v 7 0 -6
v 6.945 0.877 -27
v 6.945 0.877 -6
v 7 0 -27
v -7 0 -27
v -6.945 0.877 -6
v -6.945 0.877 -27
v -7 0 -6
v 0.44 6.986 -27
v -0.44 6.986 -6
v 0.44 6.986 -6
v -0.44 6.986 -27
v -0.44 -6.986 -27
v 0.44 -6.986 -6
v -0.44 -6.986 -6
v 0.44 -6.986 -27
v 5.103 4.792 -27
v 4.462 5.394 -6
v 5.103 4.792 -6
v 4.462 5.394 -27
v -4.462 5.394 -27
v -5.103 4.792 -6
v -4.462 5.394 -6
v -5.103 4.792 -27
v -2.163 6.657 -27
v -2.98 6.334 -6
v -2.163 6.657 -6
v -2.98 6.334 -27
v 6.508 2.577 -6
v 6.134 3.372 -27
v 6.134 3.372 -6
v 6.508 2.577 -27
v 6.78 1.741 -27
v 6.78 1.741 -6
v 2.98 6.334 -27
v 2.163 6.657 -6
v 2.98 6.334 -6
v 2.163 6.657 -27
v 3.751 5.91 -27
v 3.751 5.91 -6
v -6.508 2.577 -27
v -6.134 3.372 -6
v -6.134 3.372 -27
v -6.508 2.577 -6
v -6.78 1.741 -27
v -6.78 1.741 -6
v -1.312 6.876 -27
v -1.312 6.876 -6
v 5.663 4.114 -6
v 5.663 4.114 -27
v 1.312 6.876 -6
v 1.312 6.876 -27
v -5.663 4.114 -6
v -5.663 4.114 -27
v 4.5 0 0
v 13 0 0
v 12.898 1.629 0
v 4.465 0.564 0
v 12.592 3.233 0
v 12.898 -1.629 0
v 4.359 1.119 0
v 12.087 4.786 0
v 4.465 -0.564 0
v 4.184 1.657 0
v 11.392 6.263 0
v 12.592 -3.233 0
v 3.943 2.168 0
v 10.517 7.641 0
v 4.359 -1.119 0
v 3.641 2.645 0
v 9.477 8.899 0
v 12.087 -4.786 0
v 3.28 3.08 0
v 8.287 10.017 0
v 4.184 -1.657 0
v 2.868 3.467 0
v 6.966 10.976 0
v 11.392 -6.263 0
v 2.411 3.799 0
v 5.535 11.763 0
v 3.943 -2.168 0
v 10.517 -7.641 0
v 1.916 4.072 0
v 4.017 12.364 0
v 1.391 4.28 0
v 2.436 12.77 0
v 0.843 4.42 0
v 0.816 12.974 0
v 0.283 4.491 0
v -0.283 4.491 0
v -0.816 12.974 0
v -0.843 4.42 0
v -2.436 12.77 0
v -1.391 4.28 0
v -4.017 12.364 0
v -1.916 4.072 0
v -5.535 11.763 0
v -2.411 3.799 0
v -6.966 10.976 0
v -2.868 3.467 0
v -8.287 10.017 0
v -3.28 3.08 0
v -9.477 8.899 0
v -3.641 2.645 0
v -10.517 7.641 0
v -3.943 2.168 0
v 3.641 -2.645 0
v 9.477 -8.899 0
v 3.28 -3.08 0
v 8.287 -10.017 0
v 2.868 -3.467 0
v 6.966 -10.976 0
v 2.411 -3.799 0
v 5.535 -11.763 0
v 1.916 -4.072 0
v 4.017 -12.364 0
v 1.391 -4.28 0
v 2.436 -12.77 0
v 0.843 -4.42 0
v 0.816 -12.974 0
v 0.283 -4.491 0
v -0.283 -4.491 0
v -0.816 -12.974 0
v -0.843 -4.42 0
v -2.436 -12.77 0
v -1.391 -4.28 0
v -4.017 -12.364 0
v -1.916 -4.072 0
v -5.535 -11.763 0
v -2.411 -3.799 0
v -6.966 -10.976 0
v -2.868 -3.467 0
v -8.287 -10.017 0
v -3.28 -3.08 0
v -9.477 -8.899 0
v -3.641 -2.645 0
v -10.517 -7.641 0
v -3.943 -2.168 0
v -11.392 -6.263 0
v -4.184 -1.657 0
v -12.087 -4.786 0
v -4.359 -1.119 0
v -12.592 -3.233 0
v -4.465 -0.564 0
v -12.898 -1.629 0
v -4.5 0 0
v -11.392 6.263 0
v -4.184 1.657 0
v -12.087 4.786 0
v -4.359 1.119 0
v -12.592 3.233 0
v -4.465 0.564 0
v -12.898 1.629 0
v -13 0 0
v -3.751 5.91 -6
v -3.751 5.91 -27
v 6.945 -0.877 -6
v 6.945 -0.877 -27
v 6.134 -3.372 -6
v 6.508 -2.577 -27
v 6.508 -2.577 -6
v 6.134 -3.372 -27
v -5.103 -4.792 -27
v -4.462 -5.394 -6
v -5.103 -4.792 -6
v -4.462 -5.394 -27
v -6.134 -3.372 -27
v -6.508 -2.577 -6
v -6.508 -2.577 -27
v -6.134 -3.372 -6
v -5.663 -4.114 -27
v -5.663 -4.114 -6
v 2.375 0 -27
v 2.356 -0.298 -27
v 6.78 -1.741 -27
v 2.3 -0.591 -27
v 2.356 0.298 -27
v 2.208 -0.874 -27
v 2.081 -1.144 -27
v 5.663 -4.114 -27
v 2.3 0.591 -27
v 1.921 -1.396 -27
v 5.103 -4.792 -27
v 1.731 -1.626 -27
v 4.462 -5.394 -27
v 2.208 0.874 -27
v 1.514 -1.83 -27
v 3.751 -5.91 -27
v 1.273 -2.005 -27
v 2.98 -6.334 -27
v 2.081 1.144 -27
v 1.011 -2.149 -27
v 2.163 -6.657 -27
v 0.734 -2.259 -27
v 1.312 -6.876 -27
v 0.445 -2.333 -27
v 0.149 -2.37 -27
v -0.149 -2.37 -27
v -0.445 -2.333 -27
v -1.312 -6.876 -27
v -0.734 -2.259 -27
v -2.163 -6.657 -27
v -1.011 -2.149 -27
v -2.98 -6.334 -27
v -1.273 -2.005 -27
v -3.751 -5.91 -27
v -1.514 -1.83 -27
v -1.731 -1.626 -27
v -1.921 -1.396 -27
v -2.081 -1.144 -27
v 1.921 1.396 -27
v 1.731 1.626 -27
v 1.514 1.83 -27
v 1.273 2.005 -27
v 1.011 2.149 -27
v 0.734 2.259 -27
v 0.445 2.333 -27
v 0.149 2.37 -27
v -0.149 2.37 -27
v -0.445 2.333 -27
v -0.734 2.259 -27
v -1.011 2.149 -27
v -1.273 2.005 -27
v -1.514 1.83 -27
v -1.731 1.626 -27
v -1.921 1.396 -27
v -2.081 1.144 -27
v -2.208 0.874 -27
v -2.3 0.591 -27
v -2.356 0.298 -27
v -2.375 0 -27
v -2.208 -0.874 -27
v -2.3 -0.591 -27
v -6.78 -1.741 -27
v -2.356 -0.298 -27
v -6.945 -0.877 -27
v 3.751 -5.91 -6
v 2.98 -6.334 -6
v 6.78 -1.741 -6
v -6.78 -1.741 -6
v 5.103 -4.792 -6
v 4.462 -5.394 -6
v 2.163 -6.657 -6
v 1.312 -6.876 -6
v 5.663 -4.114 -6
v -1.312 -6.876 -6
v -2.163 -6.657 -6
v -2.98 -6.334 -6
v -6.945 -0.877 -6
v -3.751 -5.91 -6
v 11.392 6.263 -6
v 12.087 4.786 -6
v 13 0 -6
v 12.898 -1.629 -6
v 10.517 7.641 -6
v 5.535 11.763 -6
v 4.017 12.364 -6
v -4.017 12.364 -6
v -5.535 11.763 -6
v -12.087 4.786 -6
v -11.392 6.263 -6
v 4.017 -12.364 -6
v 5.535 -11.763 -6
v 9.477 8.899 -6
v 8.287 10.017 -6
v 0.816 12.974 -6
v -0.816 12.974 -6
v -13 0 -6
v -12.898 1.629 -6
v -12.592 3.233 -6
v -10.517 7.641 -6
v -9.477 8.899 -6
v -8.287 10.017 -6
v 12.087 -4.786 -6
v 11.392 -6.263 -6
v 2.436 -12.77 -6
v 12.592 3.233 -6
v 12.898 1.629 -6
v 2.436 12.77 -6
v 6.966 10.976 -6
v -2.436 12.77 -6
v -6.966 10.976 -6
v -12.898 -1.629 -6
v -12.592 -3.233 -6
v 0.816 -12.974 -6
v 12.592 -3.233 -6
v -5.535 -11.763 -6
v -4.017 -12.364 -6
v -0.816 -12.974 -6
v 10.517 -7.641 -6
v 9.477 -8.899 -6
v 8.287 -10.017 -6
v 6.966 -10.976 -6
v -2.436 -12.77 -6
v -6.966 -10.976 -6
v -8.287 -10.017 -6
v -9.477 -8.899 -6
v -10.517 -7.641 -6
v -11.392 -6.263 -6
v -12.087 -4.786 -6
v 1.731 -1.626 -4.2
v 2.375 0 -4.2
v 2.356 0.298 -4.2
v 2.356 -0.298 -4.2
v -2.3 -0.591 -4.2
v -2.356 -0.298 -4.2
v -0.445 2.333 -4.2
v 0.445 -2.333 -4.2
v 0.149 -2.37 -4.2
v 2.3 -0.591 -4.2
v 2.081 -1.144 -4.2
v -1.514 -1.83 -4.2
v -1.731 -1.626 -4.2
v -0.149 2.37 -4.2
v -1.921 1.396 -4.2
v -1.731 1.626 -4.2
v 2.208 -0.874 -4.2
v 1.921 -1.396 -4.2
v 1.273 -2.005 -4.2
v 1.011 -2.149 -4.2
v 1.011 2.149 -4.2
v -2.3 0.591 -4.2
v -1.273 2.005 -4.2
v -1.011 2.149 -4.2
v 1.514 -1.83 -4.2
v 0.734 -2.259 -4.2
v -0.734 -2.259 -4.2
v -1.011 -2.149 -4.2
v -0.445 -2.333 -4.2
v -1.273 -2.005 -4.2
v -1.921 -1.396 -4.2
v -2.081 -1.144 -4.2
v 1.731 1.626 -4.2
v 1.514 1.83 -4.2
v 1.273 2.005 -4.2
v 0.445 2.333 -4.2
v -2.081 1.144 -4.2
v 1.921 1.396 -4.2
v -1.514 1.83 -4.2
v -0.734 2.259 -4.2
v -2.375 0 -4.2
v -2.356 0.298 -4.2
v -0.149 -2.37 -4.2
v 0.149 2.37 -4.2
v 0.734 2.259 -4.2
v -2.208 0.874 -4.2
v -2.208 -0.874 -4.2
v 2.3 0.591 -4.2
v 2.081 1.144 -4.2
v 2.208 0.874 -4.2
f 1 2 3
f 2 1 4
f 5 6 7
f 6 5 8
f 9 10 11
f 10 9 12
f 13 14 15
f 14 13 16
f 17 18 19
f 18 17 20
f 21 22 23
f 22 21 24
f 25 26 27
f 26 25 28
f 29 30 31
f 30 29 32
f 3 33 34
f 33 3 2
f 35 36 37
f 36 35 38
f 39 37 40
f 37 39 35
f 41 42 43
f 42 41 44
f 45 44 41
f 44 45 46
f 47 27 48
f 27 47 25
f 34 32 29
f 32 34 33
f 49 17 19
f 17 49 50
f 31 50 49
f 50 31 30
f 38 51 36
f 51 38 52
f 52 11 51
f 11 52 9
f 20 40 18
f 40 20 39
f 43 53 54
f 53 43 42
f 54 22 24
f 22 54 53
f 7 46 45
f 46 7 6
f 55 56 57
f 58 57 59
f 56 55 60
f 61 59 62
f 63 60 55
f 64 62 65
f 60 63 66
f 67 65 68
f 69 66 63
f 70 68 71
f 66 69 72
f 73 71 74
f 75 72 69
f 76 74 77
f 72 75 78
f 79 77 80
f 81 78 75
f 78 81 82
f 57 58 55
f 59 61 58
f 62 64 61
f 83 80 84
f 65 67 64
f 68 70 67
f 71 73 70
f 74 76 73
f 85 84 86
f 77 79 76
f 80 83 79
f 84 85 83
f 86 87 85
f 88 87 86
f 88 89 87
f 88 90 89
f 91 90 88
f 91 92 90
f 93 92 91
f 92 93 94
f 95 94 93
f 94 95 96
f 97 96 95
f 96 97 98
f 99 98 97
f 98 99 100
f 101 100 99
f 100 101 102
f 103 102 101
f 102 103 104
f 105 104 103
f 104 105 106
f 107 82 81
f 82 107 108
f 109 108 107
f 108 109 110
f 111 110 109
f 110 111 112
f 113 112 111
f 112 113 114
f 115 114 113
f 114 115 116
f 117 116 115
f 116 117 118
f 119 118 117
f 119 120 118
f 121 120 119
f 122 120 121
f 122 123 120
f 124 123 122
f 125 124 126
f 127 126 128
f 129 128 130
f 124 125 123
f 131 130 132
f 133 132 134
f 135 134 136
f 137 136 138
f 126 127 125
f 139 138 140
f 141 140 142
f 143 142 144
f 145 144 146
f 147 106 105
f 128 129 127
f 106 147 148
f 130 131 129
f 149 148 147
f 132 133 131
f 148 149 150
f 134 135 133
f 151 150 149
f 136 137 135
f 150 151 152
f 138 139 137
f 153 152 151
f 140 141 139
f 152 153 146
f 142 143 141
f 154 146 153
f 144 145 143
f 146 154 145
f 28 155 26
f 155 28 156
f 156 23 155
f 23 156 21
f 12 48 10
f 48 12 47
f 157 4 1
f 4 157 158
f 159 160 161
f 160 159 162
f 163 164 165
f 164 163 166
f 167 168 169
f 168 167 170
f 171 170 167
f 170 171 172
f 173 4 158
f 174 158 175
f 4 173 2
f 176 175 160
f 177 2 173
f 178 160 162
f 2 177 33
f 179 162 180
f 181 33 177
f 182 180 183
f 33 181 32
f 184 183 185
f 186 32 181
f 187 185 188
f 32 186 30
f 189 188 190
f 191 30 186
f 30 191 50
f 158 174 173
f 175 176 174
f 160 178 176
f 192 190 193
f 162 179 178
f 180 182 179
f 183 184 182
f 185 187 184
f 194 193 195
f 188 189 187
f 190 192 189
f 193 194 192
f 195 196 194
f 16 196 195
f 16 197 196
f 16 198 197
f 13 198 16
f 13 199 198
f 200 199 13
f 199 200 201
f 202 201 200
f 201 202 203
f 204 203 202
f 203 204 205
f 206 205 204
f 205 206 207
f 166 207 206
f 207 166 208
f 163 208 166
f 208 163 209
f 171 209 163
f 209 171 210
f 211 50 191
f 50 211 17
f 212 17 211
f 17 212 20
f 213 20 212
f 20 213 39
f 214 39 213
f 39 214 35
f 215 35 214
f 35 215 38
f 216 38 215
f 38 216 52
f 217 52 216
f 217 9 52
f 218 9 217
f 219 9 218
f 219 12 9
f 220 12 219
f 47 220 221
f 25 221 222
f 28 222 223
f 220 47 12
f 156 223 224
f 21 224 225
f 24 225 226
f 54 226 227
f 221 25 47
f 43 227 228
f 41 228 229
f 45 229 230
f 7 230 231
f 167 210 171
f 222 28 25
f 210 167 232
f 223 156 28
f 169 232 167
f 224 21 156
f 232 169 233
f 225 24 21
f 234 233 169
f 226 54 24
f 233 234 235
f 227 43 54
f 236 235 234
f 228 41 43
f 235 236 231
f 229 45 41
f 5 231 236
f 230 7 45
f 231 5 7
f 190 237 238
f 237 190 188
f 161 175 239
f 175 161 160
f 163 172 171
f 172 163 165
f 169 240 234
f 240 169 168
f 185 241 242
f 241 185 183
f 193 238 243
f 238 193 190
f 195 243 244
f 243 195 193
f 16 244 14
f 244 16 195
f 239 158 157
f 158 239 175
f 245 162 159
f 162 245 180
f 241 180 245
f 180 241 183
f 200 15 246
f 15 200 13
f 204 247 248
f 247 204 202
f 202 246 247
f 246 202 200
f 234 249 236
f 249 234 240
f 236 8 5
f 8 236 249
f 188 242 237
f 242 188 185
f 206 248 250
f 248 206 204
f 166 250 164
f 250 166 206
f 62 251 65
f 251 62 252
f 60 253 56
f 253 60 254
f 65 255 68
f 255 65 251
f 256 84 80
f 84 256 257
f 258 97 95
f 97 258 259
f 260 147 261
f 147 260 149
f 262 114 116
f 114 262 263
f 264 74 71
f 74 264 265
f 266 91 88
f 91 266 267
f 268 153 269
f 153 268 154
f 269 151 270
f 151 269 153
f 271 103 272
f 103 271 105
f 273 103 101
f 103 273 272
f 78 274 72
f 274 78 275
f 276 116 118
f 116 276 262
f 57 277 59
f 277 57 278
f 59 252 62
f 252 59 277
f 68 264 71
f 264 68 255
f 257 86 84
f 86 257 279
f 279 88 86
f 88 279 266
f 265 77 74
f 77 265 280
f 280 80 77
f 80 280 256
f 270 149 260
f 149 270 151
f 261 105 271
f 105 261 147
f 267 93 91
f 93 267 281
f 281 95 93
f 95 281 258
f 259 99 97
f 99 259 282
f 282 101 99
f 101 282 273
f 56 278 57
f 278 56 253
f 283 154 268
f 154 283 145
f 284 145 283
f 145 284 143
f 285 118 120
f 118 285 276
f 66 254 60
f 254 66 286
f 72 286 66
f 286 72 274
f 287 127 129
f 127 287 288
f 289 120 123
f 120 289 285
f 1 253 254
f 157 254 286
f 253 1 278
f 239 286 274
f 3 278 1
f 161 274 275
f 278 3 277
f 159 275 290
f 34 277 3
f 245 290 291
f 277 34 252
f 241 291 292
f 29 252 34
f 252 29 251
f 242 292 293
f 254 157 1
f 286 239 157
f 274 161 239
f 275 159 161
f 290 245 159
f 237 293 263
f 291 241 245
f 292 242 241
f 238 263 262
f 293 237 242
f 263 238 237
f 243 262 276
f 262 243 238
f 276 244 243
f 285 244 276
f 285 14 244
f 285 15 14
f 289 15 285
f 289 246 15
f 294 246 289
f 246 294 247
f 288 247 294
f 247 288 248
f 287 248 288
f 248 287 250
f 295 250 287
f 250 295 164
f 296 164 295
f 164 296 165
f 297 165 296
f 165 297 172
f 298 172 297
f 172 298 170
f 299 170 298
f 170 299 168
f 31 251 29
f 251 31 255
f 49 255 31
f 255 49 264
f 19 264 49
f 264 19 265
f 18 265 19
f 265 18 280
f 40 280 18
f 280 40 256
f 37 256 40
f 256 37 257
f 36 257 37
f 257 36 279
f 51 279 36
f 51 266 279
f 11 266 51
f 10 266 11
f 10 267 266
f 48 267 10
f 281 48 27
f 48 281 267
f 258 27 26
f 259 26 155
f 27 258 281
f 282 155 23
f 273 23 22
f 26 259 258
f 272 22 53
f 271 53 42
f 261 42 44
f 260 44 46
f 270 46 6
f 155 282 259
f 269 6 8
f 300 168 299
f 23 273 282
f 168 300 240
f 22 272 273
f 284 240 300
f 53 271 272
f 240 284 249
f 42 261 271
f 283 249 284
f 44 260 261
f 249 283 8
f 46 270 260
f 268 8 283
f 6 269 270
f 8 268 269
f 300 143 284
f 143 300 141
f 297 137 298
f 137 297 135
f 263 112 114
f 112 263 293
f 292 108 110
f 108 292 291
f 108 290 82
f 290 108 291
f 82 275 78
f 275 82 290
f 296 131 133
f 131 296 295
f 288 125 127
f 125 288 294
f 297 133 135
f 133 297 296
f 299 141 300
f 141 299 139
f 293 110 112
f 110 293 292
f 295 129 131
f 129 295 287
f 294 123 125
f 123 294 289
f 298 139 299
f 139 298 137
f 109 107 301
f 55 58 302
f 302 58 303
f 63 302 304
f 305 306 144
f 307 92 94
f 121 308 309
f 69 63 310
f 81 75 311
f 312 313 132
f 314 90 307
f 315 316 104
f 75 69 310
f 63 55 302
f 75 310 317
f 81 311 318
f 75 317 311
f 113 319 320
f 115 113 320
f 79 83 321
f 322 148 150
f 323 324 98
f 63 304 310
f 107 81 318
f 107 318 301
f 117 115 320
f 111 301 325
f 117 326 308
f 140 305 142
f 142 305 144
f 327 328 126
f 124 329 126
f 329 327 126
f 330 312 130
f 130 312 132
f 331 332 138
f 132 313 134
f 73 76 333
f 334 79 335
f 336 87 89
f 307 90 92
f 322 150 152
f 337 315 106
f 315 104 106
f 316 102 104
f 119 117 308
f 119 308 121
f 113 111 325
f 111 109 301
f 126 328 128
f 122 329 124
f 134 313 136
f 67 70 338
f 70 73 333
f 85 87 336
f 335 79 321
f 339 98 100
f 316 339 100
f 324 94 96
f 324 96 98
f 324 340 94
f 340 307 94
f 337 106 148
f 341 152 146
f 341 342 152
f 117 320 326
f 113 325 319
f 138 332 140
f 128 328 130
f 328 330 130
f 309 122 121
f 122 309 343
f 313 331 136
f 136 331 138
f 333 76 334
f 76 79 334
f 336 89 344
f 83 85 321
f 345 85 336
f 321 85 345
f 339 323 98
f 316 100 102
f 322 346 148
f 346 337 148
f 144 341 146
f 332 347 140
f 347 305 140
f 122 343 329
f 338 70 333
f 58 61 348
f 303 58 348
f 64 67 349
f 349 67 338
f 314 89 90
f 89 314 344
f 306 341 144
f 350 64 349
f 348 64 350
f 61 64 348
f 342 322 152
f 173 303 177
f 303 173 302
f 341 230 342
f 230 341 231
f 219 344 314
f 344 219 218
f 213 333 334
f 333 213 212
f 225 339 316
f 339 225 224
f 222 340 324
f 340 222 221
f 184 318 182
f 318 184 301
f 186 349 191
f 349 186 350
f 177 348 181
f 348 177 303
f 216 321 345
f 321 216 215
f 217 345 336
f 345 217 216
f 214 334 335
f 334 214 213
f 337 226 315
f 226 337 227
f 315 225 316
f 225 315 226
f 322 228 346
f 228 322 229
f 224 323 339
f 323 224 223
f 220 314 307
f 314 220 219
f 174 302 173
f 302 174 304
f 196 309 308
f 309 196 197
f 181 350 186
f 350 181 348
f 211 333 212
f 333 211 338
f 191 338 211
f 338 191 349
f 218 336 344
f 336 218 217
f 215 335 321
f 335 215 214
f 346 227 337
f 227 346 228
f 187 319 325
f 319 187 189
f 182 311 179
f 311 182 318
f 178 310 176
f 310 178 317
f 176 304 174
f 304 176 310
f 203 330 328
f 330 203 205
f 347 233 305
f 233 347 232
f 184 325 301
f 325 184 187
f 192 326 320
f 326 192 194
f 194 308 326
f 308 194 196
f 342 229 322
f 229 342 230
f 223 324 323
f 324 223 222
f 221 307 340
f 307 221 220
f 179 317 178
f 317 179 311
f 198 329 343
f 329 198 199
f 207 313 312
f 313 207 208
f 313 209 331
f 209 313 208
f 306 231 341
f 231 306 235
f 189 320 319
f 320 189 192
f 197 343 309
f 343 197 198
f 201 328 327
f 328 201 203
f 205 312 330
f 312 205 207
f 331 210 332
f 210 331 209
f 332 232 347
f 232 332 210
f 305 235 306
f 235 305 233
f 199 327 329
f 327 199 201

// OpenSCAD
$fn = 50;


difference() {
	union() {
		translate(v = [0, 0, -27.0000000000]) {
			cylinder(h = 27, r = 7.0000000000);
		}
		translate(v = [0, 0, -6.0000000000]) {
			cylinder(h = 6, r = 13.0000000000);
		}
	}
	union() {
		translate(v = [0, 0, 0]) {
			rotate(a = [0, 0, 0]) {
				difference() {
					union() {
						#translate(v = [0, 0, -27.0000000000]) {
							cylinder(h = 27, r = 2.2500000000);
						}
						#translate(v = [0, 0, -4.2000000000]) {
							cylinder(h = 4.2000000000, r = 7.0000000000, r1 = 2.3750000000, r2 = 4.5000000000);
						}
						#translate(v = [0, 0, -27.0000000000]) {
							cylinder(h = 27, r = 2.3750000000);
						}
						#translate(v = [0, 0, -27.0000000000]) {
							cylinder(h = 27, r = 2.2500000000);
						}
					}
					union();
				}
			}
		}
	}
}
